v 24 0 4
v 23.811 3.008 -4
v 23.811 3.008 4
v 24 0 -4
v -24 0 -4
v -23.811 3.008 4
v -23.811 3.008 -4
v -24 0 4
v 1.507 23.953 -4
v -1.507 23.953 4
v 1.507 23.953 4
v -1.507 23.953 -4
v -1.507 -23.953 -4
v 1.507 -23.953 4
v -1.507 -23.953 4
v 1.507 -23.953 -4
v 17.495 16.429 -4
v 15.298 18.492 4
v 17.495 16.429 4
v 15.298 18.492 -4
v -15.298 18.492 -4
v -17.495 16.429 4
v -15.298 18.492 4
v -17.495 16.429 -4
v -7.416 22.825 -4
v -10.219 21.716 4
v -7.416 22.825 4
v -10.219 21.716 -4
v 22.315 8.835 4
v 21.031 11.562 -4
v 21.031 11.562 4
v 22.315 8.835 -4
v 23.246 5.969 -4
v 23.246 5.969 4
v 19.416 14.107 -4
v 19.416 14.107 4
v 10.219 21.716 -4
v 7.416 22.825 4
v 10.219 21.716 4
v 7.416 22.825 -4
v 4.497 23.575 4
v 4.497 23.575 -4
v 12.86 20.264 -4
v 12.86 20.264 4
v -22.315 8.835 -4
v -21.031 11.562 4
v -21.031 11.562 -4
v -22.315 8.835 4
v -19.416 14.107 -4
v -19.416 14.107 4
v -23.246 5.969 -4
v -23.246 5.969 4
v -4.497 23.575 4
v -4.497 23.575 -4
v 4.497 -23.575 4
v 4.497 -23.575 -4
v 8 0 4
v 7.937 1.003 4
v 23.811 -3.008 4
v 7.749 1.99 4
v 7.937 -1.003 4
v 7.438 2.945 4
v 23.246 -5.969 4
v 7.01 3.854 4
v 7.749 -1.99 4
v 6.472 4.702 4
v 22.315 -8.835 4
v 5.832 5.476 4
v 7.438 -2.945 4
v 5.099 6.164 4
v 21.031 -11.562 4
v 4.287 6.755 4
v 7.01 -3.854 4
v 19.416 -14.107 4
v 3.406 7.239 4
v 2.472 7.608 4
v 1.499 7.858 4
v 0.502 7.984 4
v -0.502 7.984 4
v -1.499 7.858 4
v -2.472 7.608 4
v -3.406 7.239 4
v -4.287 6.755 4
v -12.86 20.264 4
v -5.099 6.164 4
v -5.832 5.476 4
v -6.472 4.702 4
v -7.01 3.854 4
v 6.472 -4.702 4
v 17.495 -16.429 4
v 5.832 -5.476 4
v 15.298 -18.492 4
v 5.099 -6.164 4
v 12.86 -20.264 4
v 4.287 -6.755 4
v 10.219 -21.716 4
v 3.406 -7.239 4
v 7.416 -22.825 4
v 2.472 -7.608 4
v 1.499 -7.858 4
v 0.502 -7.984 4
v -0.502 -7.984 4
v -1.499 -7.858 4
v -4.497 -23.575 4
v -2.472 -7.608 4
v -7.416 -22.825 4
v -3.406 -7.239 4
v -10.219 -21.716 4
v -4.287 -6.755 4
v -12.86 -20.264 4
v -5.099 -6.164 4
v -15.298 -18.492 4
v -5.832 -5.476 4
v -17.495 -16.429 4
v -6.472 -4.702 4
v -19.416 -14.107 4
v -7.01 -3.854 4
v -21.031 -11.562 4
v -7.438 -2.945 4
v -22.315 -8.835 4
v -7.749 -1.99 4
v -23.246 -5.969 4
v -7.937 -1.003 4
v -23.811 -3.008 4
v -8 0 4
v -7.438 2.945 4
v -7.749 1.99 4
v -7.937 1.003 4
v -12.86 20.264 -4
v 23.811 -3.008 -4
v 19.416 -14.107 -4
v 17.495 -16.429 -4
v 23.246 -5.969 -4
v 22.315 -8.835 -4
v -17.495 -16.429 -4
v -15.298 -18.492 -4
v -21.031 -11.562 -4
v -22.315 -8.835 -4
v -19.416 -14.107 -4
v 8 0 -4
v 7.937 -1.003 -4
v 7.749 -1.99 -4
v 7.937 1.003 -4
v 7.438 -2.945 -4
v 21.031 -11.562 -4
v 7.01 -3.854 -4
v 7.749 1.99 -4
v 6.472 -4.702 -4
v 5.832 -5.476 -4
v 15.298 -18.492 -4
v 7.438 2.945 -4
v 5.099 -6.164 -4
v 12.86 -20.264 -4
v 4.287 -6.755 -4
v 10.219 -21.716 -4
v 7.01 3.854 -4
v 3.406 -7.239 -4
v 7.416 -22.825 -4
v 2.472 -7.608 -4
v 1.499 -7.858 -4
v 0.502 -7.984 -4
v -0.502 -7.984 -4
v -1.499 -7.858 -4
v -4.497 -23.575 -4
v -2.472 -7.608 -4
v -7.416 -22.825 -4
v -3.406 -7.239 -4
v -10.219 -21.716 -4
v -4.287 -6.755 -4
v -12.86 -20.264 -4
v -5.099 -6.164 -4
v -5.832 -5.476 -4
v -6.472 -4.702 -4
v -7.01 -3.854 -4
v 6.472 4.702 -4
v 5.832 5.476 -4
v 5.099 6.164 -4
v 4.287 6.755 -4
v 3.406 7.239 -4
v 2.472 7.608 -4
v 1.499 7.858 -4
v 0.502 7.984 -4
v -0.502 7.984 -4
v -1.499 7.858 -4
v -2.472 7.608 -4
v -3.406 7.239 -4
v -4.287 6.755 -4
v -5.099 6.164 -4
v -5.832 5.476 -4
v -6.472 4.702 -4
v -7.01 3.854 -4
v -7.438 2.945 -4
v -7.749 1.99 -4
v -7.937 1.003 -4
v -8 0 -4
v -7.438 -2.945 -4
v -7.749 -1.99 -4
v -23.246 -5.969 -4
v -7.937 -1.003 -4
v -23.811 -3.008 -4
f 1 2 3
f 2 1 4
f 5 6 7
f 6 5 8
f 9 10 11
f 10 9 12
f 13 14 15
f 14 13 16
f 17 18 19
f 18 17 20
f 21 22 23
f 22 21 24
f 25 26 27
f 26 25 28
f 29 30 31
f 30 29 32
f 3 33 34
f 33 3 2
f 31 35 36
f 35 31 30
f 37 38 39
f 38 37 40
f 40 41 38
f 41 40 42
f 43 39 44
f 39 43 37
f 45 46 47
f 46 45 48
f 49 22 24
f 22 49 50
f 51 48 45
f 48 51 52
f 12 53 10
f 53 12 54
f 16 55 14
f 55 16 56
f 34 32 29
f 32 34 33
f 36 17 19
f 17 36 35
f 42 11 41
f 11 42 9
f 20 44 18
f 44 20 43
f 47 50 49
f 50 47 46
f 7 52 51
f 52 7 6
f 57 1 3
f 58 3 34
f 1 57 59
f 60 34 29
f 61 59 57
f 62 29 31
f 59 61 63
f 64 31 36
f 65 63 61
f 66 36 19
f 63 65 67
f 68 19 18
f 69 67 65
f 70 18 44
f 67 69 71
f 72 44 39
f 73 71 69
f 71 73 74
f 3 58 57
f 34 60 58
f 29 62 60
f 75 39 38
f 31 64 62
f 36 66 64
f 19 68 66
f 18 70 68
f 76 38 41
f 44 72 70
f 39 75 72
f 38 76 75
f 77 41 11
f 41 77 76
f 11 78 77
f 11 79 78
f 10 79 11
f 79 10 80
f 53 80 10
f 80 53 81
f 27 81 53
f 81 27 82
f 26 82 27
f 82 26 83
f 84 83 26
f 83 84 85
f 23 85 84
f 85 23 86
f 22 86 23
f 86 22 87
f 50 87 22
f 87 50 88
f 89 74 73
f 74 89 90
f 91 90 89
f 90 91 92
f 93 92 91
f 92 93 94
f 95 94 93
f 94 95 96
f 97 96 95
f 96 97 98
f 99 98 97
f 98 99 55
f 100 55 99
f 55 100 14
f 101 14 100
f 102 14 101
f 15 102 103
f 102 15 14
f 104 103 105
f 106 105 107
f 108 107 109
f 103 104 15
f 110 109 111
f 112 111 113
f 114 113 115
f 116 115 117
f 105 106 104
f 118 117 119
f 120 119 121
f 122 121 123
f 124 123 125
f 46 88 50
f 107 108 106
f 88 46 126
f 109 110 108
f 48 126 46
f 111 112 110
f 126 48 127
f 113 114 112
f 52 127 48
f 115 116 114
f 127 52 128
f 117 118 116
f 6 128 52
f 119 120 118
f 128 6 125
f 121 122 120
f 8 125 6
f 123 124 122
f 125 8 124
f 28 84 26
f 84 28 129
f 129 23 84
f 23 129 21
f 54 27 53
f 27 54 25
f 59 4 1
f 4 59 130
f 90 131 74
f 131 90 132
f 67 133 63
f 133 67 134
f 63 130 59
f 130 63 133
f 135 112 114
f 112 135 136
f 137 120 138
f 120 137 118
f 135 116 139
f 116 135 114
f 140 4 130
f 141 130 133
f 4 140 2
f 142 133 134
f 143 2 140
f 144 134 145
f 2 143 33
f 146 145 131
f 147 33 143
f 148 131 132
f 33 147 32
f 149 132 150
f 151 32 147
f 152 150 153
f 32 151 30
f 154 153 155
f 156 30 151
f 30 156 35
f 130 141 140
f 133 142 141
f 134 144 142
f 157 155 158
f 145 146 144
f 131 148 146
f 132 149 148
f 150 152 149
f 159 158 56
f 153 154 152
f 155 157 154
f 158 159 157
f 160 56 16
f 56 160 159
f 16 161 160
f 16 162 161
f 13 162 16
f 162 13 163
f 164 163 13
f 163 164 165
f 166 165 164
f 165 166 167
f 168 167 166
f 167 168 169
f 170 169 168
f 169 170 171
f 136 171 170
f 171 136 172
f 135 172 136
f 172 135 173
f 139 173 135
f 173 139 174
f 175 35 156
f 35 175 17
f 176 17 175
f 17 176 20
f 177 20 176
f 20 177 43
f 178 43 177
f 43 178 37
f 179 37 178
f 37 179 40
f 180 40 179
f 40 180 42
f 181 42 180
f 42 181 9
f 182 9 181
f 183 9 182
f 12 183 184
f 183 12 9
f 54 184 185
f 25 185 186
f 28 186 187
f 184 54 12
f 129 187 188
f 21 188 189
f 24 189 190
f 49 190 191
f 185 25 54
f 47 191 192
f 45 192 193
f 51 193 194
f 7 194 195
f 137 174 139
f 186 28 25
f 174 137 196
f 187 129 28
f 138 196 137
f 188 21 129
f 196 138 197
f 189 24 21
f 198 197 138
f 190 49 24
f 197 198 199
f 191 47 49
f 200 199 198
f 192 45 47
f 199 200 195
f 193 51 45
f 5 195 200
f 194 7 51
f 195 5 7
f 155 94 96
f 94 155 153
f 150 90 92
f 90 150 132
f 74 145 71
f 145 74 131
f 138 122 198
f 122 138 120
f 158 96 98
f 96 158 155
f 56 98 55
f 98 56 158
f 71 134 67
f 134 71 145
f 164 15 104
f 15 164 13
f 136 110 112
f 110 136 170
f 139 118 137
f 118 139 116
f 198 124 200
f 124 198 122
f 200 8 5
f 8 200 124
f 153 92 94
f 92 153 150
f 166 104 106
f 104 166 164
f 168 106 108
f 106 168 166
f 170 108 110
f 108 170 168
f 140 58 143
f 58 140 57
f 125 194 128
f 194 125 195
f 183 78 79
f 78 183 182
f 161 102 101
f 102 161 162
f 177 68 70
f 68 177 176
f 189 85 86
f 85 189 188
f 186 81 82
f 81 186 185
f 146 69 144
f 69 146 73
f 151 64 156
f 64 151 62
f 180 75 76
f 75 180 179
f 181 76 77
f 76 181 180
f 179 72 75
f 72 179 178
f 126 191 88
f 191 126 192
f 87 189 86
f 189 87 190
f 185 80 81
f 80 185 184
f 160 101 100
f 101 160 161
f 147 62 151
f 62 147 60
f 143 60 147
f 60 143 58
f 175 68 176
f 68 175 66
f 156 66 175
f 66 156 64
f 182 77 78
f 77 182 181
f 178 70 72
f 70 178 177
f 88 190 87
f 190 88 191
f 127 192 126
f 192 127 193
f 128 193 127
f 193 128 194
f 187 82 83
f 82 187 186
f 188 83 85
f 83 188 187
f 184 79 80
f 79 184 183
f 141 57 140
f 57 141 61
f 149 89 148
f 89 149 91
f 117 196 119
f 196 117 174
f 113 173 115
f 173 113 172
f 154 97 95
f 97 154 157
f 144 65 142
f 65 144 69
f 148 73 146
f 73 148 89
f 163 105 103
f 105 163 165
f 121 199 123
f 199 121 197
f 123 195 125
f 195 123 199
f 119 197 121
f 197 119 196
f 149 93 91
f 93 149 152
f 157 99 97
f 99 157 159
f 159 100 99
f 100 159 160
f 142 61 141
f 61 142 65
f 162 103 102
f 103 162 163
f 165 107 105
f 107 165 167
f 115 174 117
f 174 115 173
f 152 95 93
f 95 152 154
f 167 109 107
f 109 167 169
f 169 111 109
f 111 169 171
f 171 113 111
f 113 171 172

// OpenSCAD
$fn = 50;


difference() {
	union() {
		translate(v = [0, 0, -4.0000000000]) {
			cylinder(h = 8, r = 24.0000000000);
		}
	}
	union() {
		translate(v = [0, 0, -100.0000000000]) {
			cylinder(h = 200, r = 8);
		}
	}
}
